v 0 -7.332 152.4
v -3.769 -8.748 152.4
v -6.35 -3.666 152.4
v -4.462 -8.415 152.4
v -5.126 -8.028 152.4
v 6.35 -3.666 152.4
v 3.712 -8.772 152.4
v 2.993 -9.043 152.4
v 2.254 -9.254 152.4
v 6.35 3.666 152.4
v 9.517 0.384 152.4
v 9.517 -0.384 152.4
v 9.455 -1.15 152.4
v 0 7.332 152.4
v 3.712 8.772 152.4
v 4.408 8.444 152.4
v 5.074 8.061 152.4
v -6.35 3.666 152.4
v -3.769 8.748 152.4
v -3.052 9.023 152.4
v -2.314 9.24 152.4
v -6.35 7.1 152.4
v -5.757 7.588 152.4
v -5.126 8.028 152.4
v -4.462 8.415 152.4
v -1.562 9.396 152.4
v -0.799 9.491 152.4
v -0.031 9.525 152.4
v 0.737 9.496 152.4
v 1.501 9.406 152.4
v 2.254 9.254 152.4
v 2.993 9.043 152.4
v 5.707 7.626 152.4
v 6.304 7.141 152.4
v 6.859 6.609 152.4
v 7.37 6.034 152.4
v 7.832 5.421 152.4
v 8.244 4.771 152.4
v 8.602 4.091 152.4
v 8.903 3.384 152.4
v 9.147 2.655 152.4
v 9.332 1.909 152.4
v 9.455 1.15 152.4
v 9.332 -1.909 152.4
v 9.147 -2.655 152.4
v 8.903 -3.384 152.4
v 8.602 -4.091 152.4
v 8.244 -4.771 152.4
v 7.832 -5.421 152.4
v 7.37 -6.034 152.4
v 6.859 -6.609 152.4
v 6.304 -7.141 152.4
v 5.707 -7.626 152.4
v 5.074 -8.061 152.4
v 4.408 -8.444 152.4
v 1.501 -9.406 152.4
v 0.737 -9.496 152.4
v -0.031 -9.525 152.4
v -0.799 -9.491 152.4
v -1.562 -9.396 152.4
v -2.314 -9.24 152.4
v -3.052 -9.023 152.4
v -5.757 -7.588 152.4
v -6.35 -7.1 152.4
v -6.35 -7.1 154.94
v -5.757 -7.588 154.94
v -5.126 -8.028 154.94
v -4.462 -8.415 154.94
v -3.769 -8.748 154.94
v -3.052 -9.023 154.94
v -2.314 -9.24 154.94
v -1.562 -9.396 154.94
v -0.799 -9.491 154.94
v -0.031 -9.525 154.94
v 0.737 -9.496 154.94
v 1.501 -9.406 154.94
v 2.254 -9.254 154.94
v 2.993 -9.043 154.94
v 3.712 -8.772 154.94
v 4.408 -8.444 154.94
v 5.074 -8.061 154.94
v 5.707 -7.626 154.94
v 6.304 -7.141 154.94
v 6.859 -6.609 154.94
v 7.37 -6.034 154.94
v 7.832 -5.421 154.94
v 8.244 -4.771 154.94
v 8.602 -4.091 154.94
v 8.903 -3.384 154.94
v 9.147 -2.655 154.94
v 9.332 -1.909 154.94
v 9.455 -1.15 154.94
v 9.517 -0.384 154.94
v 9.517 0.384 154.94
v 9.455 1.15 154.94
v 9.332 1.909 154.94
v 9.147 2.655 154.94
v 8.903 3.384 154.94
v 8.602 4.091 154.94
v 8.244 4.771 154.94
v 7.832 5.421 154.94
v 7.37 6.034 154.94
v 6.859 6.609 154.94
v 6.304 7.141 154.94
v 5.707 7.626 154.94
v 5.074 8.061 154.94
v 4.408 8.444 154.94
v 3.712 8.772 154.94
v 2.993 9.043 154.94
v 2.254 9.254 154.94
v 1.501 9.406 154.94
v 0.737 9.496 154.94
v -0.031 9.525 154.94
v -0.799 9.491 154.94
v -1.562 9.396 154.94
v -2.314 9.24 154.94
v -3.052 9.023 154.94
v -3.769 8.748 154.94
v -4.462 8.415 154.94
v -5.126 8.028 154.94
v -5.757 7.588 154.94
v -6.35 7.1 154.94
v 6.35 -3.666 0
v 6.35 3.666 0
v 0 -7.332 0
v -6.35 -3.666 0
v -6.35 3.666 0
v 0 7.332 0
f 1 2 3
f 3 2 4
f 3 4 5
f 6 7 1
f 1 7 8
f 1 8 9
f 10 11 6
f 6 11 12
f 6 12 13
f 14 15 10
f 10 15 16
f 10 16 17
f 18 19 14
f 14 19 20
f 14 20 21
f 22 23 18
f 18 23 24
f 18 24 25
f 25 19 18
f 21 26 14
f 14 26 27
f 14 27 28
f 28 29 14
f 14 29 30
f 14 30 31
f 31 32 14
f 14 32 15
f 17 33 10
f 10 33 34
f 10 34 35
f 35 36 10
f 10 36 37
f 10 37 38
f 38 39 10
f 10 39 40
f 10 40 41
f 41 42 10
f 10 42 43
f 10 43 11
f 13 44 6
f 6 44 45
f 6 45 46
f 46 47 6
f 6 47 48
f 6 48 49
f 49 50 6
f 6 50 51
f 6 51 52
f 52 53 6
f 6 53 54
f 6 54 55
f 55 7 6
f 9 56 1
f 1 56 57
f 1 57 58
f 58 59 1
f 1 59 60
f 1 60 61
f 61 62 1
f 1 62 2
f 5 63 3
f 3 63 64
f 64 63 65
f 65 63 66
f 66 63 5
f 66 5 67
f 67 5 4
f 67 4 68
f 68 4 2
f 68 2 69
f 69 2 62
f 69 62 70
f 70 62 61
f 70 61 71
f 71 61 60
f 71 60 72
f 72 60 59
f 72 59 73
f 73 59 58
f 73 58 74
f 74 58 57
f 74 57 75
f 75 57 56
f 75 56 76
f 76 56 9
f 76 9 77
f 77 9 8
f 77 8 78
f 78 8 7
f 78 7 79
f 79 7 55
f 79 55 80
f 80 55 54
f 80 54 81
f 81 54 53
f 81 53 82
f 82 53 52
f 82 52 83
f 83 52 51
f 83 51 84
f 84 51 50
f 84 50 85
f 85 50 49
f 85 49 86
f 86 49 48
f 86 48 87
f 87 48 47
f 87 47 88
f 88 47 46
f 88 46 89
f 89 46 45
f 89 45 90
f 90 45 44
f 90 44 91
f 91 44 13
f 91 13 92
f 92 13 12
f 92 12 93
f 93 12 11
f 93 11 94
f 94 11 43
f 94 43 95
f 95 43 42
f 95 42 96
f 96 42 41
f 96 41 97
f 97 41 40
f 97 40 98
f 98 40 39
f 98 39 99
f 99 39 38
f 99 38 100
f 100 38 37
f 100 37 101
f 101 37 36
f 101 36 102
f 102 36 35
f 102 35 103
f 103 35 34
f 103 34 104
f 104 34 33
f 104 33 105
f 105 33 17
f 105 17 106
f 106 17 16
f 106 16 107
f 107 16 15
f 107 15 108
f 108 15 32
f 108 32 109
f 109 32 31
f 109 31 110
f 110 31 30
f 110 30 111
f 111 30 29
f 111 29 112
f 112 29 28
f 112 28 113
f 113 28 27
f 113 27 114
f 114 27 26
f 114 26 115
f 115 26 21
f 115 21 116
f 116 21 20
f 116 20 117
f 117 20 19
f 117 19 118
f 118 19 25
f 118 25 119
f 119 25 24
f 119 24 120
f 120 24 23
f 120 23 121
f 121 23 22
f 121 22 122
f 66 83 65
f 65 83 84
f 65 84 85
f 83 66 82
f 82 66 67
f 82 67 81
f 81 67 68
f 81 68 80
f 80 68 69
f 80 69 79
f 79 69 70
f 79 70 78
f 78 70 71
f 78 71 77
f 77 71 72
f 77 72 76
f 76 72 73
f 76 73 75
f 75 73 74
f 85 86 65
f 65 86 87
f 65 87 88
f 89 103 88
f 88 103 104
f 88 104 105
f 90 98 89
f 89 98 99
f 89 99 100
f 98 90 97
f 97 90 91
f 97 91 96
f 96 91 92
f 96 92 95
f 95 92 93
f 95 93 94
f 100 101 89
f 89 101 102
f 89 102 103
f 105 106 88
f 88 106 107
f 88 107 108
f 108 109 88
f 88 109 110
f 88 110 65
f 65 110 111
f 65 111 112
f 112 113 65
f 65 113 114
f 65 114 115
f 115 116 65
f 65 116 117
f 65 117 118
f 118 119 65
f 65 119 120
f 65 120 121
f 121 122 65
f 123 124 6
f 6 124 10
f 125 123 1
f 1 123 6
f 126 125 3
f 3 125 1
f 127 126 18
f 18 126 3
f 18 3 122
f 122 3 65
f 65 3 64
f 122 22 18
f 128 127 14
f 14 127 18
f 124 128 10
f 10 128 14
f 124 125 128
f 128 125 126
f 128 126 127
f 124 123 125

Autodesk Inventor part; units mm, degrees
ref_plane "YZ Plane" through (0, 0, 0) normal (1, 0, 0) x (0, 1, 0)
ref_plane "XZ Plane" through (0, 0, 0) normal (0, 1, 0) x (-1, 0, 0)
ref_plane "XY Plane" through (0, 0, 0) normal (0, 0, 1) x (1, 0, 0)
sketch "Sketch1" plane through (0, 0, 0) normal (0, 0, 1) x (1, 0, 0)
  line L0 (0, 7.3323) -> (6.35, 3.6662)
  line L1 (6.35, 3.6662) -> (6.35, -3.6662)
  line L2 (6.35, -3.6662) -> (0, -7.3323)
  line L3 (0, -7.3323) -> (-6.35, -3.6662)
  line L4 (-6.35, -3.6662) -> (-6.35, 3.6662)
  line L5 (-6.35, 3.6662) -> (0, 7.3323)
  point P0 (0, 0)
  point P1 (0, 0)
  dimension "d0" = 12.7
extrude "Extrusion1" add sketch "Sketch1" along normal blind 152.4
sketch "Sketch2" plane through (0, 0, 152.4) normal (0, 0, 1) x (1, 0, 0)
  circle A0 centre (0, 0) radius 9.525
  line L0 (-6.35, 3.6662) -> (-6.35, -3.6662) projected
  line L1 (6.35, 3.6662) -> (0, 7.3323) projected
  line L2 (0, 7.3323) -> (-6.35, 3.6662) projected
  line L3 (-6.35, 3.6662) -> (-6.35, -3.6662) projected
  line L4 (-6.35, -3.6662) -> (0, -7.3323) projected
  line L5 (0, -7.3323) -> (6.35, -3.6662) projected
  line L6 (6.35, -3.6662) -> (6.35, 3.6662) projected
  line L7 (-6.35, 3.6662) -> (-6.35, 7.0995)
  line L8 (-6.35, -3.6662) -> (-6.35, -7.0995)
  point P0 (-6.35, -3.6662)
  dimension "d3" = 19.05
extrude "Extrusion2" add sketch "Sketch2" along normal blind 2.54 contours A0 L8 L4 L5 L6 L1 L2 L7 | L2 L1 L6 L5 L4 L0
properties part number "_3DPrint"
